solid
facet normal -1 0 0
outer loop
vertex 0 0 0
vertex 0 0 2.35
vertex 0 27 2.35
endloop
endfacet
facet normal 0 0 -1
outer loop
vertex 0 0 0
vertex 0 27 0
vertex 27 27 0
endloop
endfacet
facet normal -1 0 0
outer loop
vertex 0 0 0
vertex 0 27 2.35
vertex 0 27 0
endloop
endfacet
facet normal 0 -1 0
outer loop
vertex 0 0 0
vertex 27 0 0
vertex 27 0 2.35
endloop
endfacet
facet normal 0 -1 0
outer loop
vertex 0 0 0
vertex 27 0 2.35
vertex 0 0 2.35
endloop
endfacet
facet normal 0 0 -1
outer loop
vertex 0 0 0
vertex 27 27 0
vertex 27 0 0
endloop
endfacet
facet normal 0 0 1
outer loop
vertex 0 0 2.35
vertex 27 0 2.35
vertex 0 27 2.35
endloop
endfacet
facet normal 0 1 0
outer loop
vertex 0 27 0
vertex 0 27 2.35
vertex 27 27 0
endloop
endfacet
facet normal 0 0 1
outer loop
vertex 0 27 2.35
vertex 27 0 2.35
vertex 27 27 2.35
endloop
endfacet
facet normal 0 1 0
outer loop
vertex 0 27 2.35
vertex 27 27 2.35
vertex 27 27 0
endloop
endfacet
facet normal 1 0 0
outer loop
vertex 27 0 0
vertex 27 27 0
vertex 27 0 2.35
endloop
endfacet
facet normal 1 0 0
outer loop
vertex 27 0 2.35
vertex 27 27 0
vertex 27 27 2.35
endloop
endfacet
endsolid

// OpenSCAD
/* Warning, this is a very basic generator with a lot of approximation 
input data : [FBGA, H6C, 27x27x2.35mm, 1285, , B, C04-25654B]
generated by com.zoubworld.electronics.cad.model3d.Basic
Date : Sun Feb 15 10:50:49 CET 2026
*/

//body
color("black")
translate([0,0,0])
cube([27.0,27.0,2.35], center=false);
